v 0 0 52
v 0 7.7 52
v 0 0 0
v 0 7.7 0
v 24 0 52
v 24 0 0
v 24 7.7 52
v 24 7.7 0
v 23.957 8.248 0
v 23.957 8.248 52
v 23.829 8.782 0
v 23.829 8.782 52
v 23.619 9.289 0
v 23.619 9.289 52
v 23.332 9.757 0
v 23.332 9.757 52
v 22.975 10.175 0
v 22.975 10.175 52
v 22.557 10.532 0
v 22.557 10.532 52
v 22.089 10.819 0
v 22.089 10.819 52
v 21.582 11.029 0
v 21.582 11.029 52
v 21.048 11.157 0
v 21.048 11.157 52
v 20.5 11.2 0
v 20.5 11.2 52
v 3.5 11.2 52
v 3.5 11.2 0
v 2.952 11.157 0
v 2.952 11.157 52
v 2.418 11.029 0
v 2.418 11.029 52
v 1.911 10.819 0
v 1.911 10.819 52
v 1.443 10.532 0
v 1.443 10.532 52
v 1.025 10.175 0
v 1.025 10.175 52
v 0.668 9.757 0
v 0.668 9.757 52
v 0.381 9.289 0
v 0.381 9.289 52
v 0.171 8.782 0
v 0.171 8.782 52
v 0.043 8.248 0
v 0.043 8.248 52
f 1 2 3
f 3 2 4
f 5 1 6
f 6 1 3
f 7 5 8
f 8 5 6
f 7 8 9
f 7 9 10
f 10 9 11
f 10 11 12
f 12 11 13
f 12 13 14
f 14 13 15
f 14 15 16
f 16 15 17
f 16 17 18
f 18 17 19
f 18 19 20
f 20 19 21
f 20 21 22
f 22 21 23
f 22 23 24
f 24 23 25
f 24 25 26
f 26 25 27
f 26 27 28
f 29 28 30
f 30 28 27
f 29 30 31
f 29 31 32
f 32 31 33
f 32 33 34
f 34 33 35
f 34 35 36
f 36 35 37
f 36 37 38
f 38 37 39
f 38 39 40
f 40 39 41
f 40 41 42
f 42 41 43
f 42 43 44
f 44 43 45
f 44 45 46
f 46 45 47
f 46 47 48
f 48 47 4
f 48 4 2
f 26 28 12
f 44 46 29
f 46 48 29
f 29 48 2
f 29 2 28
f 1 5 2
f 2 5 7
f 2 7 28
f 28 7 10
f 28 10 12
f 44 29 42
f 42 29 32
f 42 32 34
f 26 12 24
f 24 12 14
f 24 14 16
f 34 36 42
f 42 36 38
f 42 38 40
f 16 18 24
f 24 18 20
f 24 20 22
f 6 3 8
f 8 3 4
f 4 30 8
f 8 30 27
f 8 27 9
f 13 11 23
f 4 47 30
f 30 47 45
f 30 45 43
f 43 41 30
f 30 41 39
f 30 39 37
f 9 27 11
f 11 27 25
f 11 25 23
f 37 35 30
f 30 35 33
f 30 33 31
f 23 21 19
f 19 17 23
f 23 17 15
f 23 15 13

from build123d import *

# Parameters (mm, degrees)
BOSS_EXTRUDE1_DEPTH = 52


with BuildPart() as part:
    # Sketch2 → Boss-Extrude1 (new body)
    with BuildSketch(Plane.XY):
        with BuildLine():
            Line((0, 0), (24, 0))
            Line((24, 0), (24, 7.7))
            ThreePointArc((24, 7.7), (22.974873734, 10.174873734), (20.5, 11.2))
            Line((20.5, 11.2), (3.5, 11.2))
            ThreePointArc((3.5, 11.2), (1.025126266, 10.174873734), (0, 7.7))
            Line((0, 7.7), (0, 0))
        make_face()
    extrude(amount=BOSS_EXTRUDE1_DEPTH)


solid = part.part
